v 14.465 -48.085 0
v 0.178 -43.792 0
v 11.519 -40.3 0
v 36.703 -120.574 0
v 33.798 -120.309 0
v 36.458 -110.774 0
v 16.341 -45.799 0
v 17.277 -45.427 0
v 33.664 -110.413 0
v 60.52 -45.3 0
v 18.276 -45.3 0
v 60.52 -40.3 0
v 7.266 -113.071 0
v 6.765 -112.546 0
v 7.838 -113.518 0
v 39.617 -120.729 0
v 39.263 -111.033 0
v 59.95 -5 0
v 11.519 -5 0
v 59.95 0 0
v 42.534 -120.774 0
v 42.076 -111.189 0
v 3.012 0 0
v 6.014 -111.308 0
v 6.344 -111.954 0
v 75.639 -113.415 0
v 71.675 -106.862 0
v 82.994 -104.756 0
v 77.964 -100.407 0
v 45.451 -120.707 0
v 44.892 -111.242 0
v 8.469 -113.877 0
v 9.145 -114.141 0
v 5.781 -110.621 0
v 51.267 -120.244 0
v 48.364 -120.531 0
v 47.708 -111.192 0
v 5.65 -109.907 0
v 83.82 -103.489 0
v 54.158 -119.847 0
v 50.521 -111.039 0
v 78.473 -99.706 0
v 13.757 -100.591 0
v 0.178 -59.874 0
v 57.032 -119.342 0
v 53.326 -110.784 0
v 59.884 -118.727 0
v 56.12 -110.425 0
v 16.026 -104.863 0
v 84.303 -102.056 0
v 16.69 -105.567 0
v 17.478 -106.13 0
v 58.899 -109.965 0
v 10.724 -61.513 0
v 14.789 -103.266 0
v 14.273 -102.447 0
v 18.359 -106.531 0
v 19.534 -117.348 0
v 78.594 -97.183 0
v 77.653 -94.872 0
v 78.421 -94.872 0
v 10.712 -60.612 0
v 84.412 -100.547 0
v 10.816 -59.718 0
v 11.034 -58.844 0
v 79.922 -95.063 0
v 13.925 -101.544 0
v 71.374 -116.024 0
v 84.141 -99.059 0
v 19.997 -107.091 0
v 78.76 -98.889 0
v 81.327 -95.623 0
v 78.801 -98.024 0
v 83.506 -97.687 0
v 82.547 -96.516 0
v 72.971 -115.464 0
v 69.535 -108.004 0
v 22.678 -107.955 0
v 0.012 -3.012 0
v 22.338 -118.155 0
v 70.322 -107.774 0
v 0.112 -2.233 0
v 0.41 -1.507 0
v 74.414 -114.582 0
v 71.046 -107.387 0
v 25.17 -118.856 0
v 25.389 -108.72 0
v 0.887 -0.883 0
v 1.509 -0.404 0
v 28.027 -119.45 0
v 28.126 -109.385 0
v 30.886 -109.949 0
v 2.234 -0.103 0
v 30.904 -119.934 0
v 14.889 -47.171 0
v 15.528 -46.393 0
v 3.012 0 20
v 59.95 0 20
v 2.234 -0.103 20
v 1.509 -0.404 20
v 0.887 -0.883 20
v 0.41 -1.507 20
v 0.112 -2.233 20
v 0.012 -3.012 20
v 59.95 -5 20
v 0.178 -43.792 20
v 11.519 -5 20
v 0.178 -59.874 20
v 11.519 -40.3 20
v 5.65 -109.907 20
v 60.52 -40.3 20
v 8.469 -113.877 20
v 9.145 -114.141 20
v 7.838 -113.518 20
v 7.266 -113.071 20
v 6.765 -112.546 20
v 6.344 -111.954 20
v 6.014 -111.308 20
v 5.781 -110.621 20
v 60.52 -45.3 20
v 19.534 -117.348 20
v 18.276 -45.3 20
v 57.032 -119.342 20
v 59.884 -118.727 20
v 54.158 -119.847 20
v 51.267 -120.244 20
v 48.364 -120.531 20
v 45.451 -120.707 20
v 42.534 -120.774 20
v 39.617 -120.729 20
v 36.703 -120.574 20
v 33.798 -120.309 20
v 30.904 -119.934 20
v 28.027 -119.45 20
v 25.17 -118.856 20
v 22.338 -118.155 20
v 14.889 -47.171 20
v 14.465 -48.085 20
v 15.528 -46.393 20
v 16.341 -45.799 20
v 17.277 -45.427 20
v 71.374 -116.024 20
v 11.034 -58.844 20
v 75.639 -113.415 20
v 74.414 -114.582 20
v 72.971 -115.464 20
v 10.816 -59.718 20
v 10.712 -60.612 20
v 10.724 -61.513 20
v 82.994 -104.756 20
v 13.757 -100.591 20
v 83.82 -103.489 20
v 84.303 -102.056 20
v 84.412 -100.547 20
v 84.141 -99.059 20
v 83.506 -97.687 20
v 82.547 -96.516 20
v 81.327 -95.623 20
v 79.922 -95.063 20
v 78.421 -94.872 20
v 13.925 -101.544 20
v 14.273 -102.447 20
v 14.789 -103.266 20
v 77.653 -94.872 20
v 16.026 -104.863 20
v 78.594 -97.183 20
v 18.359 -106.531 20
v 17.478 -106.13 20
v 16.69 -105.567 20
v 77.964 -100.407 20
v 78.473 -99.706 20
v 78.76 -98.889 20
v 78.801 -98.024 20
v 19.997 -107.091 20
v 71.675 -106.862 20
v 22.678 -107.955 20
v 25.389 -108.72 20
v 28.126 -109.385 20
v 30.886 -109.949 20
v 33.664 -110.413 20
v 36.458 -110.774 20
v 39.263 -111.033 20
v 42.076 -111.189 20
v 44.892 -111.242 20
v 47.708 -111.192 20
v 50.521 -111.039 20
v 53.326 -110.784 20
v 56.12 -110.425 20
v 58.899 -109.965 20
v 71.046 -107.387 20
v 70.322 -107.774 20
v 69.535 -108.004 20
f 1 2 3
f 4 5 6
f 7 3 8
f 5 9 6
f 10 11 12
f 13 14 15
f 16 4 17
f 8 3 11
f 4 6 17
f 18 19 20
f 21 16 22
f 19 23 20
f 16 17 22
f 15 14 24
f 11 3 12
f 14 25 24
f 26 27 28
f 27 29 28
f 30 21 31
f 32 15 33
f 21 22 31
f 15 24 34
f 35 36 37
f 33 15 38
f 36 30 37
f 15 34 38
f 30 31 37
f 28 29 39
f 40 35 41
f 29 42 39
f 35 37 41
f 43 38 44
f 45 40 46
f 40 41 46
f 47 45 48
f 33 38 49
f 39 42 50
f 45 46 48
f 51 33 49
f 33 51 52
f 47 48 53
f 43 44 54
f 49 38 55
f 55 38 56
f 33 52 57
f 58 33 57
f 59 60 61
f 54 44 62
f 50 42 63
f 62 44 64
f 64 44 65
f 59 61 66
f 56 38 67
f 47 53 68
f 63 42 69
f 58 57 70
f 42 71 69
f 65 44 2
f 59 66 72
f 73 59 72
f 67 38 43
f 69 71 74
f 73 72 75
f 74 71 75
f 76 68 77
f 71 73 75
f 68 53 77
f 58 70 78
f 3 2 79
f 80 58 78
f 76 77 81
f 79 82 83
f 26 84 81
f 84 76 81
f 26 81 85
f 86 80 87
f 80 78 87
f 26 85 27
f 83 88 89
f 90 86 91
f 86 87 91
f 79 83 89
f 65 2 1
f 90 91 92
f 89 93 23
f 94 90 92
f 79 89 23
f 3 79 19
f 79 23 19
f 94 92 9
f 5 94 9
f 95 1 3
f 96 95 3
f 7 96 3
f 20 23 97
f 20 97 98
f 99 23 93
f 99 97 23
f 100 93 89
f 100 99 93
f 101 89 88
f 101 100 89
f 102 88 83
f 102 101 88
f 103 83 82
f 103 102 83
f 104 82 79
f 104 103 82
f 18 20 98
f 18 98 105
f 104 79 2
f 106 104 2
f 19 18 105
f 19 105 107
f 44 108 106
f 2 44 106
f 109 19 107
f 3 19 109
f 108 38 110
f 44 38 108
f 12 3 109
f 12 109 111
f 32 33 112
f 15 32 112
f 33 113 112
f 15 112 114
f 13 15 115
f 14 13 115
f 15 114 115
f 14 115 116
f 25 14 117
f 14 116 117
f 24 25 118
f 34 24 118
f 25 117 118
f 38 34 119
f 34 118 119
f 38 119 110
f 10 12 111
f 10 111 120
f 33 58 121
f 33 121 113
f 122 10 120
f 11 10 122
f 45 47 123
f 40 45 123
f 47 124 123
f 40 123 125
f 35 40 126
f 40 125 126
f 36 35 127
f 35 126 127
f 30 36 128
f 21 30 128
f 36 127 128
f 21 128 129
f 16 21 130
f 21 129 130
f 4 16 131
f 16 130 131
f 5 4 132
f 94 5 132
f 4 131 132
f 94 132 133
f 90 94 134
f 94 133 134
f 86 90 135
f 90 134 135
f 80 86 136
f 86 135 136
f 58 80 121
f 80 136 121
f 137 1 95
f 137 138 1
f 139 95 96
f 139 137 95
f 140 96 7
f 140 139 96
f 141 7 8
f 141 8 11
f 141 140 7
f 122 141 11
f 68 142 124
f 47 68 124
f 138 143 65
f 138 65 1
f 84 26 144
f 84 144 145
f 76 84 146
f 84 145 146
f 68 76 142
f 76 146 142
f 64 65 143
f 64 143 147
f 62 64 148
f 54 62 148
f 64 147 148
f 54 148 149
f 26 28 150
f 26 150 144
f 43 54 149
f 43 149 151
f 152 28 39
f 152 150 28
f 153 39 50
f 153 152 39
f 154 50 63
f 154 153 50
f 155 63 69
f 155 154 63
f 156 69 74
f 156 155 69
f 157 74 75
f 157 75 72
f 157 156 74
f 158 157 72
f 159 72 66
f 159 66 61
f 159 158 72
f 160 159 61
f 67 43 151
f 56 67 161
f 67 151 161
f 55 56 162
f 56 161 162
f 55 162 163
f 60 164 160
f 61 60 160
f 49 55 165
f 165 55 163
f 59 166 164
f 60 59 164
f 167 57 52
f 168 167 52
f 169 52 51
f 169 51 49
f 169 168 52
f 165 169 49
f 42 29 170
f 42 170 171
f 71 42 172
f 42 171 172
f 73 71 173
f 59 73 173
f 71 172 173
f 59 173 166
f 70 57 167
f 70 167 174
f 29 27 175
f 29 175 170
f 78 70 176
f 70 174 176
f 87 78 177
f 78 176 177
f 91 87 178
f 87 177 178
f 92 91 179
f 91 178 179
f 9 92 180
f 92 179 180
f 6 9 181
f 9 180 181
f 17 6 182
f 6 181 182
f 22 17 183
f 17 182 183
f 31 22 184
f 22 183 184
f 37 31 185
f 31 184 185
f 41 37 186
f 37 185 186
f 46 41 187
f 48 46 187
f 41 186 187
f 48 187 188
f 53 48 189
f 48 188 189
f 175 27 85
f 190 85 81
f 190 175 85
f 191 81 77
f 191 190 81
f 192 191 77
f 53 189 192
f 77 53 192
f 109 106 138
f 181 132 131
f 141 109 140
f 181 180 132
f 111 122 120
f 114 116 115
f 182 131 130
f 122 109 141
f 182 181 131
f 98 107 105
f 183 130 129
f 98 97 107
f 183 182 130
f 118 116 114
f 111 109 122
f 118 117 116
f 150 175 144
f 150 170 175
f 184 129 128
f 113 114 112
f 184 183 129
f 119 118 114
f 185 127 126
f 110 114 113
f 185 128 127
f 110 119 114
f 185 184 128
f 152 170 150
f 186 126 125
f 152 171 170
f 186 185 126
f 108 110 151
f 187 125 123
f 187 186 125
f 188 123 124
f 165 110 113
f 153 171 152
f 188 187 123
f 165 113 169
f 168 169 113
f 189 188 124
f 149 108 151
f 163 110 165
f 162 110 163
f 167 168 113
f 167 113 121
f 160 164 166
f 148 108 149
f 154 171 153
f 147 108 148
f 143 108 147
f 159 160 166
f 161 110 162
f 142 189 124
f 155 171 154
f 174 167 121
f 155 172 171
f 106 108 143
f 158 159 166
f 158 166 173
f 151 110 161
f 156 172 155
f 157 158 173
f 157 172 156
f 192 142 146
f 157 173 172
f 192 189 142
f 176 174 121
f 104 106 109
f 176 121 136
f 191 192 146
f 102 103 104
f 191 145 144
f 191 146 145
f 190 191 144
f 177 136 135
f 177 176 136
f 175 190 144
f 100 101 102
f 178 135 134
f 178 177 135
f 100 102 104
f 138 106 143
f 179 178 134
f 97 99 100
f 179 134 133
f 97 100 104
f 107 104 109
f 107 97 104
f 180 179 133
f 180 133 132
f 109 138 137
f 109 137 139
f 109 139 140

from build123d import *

# Parameters (mm, degrees)
PAD_DEPTH    = 20
FILLET_R     = 77
CHAMFER_SIZE = 3
FILLET001_R  = 3
FILLET002_R  = 4
FILLET003_R  = 8
FILLET004_R  = 6
FILLET005_R  = 5
FILLET006_R  = 5
FILLET007_R  = 4
FILLET008_R  = 7
FILLET009_R  = 3


with BuildPart() as part:
    # Sketch → Pad (new body)
    with BuildSketch(Plane.XY):
        Polygon((0, 0), (59.950146, 0), (59.950146, -5), (11.518525, -5), (11.518525, -40.3), (60.519711, -40.3), (60.519711, -45.3), (15.353175, -45.3), (10.617641, -60.148293), (14.104488, -105.074165), (39.071716, -113.621506), (70.78685, -107.773331), (79.334183, -99.001053), (77.653412, -94.872163), (91.389916, -94.872163), (73.935867, -115.420944), (39.52158, -123.518425), (6.007014, -113.171646), (0.177902, -59.873554), (0.177902, -43.792206), align=None)
    extrude(amount=PAD_DEPTH)

    # Fillet
    fillet_edges = [part.edges().sort_by_distance(p)[0] for p in [
        (39.071716, -113.621506, 10),
        (39.52158, -123.518425, 10),
    ]]
    fillet(fillet_edges, radius=FILLET_R)

    # Chamfer
    chamfer_edges = [part.edges().sort_by_distance(p)[0] for p in [
        (14.104488, -105.074165, 10),
    ]]
    chamfer(chamfer_edges, length=CHAMFER_SIZE)

    # Fillet001
    fillet001_edges = [part.edges().sort_by_distance(p)[0] for p in [
        (79.334183, -99.001053, 10),
    ]]
    fillet(fillet001_edges, radius=FILLET001_R)

    # Fillet002
    fillet002_edges = [part.edges().sort_by_distance(p)[0] for p in [
        (70.78685, -107.773331, 10),
    ]]
    fillet(fillet002_edges, radius=FILLET002_R)

    # Fillet003
    fillet003_edges = [part.edges().sort_by_distance(p)[0] for p in [
        (73.935867, -115.420944, 10),
    ]]
    fillet(fillet003_edges, radius=FILLET003_R)

    # Fillet004
    fillet004_edges = [part.edges().sort_by_distance(p)[0] for p in [
        (91.389916, -94.872163, 10),
    ]]
    fillet(fillet004_edges, radius=FILLET004_R)

    # Fillet005
    fillet005_edges = [part.edges().sort_by_distance(p)[0] for p in [
        (6.007014, -113.171646, 10),
    ]]
    fillet(fillet005_edges, radius=FILLET005_R)

    # Fillet006
    fillet006_edges = [part.edges().sort_by_distance(p)[0] for p in [
        (13.872346, -102.08316, 10),
        (16.942774, -106.045831, 10),
    ]]
    fillet(fillet006_edges, radius=FILLET006_R)

    # Fillet007
    fillet007_edges = [part.edges().sort_by_distance(p)[0] for p in [
        (15.353175, -45.3, 10),
    ]]
    fillet(fillet007_edges, radius=FILLET007_R)

    # Fillet008
    fillet008_edges = [part.edges().sort_by_distance(p)[0] for p in [
        (10.617641, -60.148293, 10),
    ]]
    fillet(fillet008_edges, radius=FILLET008_R)

    # Fillet009
    fillet009_edges = [part.edges().sort_by_distance(p)[0] for p in [
        (0, 0, 10),
    ]]
    fillet(fillet009_edges, radius=FILLET009_R)


solid = part.part
